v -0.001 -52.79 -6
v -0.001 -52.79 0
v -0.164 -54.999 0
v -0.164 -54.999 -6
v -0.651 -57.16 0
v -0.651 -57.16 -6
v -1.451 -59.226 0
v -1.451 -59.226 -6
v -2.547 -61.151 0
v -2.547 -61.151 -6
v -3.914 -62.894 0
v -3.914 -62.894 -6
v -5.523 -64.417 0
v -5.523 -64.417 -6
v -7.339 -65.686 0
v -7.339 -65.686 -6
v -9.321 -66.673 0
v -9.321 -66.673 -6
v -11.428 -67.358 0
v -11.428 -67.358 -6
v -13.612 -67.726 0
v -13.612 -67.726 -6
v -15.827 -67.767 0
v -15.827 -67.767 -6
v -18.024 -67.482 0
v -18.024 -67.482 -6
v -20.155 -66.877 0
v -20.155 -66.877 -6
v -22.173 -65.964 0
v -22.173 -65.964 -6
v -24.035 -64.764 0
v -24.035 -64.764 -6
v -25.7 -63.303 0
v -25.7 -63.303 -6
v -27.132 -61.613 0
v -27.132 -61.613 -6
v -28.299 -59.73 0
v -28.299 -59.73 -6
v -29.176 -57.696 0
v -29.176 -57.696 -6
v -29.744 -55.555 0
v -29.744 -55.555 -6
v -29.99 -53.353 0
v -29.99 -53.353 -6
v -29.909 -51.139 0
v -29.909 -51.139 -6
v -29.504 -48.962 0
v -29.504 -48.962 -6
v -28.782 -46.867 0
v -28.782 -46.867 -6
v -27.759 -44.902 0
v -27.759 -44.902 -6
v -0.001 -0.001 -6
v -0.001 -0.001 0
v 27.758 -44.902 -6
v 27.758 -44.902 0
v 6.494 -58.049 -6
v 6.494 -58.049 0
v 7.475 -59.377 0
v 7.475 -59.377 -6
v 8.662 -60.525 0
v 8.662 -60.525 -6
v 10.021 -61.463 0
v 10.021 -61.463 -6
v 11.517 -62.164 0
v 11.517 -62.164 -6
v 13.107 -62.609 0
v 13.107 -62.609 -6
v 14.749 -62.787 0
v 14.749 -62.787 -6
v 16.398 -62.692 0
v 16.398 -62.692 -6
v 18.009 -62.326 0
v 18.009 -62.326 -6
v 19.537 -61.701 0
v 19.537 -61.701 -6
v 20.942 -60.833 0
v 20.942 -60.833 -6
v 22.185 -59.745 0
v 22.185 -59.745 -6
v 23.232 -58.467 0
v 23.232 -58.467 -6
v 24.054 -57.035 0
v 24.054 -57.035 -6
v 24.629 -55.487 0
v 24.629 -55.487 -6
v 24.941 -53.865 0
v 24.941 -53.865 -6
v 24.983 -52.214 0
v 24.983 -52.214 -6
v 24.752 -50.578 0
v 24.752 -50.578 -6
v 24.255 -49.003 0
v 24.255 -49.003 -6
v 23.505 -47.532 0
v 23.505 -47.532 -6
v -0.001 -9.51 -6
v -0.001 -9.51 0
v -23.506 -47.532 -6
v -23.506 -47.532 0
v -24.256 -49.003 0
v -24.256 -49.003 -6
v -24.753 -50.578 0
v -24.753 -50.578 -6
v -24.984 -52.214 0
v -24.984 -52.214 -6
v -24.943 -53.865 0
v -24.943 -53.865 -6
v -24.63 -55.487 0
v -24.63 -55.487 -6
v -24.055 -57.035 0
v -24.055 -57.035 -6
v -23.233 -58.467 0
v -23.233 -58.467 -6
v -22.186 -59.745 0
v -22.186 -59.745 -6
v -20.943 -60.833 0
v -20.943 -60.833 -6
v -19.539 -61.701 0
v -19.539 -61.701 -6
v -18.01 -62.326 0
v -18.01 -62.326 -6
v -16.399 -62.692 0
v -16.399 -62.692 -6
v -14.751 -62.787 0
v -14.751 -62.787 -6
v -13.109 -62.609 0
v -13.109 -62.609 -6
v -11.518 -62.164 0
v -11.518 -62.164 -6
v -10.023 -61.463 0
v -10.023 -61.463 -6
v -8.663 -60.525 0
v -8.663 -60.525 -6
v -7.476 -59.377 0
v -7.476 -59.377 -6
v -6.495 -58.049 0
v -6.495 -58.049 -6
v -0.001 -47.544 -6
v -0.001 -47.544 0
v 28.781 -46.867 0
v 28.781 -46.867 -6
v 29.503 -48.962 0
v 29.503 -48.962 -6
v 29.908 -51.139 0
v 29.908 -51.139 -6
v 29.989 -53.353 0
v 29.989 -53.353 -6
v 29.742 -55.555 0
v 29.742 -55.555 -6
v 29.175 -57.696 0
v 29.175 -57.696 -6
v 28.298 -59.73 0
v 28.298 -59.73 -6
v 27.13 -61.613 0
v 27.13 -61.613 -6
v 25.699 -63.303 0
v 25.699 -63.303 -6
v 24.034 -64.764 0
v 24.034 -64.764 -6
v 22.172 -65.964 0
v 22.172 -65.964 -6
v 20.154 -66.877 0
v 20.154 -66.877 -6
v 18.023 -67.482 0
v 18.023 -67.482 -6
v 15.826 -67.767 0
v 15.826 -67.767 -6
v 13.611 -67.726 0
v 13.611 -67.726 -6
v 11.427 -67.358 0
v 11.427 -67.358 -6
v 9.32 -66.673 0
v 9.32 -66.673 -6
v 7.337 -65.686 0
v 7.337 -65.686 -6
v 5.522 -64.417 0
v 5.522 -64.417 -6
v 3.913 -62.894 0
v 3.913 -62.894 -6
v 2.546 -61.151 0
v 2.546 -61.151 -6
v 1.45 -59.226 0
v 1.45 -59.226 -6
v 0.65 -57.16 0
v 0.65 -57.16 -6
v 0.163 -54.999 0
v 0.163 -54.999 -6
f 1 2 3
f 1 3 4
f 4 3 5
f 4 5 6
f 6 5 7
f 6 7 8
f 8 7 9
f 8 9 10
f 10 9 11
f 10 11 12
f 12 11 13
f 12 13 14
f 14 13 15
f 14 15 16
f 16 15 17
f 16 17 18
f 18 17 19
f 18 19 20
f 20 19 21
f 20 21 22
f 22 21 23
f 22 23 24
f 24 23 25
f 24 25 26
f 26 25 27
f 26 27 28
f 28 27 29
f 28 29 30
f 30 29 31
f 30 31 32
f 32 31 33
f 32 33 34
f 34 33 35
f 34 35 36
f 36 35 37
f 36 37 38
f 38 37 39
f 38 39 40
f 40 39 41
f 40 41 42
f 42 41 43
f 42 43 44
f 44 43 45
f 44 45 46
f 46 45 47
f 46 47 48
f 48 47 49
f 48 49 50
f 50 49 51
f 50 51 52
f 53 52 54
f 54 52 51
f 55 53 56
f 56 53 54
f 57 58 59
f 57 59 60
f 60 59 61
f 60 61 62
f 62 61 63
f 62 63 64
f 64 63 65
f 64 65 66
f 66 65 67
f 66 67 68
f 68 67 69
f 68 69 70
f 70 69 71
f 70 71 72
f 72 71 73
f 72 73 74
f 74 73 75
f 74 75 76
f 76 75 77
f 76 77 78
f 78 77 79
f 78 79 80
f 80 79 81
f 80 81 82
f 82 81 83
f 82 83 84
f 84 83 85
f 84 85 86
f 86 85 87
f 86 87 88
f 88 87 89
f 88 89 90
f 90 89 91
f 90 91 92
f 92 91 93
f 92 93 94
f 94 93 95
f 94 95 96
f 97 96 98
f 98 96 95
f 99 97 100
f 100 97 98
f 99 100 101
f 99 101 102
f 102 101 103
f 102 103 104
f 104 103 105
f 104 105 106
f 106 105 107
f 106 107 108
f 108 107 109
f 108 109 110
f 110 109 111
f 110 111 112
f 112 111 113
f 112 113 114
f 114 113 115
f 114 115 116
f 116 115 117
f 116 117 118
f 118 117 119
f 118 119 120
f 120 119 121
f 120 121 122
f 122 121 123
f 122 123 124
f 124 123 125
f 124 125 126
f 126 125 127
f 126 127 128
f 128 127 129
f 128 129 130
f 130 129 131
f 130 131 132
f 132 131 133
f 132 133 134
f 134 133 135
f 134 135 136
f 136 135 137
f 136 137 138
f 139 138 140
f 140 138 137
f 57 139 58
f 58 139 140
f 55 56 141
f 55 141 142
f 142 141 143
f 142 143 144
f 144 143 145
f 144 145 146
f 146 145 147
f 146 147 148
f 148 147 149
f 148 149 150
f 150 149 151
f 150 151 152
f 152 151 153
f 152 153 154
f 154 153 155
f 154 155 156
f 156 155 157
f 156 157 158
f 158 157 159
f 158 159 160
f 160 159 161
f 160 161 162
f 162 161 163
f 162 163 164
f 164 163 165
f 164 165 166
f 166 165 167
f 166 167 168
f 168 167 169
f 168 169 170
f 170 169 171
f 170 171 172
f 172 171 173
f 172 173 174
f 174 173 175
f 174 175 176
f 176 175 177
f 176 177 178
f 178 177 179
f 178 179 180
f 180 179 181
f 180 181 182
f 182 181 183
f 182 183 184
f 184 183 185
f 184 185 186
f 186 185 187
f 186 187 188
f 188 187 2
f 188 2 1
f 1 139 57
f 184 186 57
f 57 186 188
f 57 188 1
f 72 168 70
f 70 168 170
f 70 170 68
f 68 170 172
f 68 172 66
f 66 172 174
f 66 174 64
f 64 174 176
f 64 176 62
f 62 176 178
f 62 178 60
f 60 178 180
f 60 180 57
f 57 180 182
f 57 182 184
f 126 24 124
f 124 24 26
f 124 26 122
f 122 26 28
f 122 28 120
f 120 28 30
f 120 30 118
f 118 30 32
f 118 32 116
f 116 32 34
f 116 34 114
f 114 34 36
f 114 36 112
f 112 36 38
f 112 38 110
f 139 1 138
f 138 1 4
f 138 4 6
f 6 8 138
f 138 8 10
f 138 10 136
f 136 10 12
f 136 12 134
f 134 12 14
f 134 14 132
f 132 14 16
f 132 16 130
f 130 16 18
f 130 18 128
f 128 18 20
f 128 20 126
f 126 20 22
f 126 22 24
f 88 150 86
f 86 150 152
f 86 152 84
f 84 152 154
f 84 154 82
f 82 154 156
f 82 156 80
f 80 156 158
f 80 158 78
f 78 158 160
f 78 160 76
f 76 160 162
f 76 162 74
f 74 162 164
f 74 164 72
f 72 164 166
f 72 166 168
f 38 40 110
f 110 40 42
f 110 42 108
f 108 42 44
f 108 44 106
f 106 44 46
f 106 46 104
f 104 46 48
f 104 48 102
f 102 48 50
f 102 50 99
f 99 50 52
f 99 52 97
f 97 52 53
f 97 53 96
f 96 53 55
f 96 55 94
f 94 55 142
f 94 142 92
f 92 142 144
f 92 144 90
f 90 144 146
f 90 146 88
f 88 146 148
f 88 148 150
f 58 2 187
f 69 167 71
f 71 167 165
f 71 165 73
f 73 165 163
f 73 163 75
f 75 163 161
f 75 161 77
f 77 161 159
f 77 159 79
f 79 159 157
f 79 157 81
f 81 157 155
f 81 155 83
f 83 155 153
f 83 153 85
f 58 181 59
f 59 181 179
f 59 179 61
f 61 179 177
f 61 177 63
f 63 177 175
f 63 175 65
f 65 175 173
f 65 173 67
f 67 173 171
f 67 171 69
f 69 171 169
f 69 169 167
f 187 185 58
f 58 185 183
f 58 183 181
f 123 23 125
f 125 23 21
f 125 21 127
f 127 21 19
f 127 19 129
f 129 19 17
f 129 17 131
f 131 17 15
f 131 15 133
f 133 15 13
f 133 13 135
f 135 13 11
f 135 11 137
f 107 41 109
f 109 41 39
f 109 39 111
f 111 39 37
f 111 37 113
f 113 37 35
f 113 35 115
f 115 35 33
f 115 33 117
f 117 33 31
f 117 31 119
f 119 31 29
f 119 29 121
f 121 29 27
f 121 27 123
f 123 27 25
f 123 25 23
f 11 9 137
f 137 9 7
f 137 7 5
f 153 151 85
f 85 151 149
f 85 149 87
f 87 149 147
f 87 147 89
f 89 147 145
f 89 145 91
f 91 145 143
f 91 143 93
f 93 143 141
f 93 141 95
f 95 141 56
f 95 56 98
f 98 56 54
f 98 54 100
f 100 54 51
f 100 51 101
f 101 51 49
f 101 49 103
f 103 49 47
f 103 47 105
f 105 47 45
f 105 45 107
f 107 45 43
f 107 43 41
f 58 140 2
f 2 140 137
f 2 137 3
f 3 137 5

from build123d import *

# Parameters (mm, degrees)
BOSS_EXTRUDE1_DEPTH = 6


with BuildPart() as part:
    # Sketch1 → Boss-Extrude1 (new body)
    with BuildSketch(Plane(origin=(0, 0, 0), x_dir=(1, 0, 0), z_dir=(0, 0, -1))):
        with BuildLine():
            Line((-27.759328596, 44.902453019), (-0.000594147, 0.000961069))
            Line((-0.000594147, 0.000961069), (27.758140303, 44.902453019))
            ThreePointArc((27.758140303, 44.902453019), (19.099343857, 67.218890553), (-0.000594147, 52.790082274))
            ThreePointArc((-0.000594147, 52.790082274), (-19.10053215, 67.218890553), (-27.759328596, 44.902453019))
        make_face()
        with BuildLine():
            Line((23.50522882, 47.531662771), (-0.000594147, 9.509521573))
            Line((-0.000594147, 9.509521573), (-23.506417113, 47.531662771))
            ThreePointArc((-23.506417113, 47.531662771), (-20.25901365, 61.29590524), (-6.49477118, 58.048501777))
            Line((-6.49477118, 58.048501777), (-0.000594147, 47.543763589))
            Line((-0.000594147, 47.543763589), (6.493582887, 58.048501777))
            ThreePointArc((6.493582887, 58.048501777), (20.257825357, 61.29590524), (23.50522882, 47.531662771))
        make_face(mode=Mode.SUBTRACT)
    extrude(amount=BOSS_EXTRUDE1_DEPTH)


solid = part.part
